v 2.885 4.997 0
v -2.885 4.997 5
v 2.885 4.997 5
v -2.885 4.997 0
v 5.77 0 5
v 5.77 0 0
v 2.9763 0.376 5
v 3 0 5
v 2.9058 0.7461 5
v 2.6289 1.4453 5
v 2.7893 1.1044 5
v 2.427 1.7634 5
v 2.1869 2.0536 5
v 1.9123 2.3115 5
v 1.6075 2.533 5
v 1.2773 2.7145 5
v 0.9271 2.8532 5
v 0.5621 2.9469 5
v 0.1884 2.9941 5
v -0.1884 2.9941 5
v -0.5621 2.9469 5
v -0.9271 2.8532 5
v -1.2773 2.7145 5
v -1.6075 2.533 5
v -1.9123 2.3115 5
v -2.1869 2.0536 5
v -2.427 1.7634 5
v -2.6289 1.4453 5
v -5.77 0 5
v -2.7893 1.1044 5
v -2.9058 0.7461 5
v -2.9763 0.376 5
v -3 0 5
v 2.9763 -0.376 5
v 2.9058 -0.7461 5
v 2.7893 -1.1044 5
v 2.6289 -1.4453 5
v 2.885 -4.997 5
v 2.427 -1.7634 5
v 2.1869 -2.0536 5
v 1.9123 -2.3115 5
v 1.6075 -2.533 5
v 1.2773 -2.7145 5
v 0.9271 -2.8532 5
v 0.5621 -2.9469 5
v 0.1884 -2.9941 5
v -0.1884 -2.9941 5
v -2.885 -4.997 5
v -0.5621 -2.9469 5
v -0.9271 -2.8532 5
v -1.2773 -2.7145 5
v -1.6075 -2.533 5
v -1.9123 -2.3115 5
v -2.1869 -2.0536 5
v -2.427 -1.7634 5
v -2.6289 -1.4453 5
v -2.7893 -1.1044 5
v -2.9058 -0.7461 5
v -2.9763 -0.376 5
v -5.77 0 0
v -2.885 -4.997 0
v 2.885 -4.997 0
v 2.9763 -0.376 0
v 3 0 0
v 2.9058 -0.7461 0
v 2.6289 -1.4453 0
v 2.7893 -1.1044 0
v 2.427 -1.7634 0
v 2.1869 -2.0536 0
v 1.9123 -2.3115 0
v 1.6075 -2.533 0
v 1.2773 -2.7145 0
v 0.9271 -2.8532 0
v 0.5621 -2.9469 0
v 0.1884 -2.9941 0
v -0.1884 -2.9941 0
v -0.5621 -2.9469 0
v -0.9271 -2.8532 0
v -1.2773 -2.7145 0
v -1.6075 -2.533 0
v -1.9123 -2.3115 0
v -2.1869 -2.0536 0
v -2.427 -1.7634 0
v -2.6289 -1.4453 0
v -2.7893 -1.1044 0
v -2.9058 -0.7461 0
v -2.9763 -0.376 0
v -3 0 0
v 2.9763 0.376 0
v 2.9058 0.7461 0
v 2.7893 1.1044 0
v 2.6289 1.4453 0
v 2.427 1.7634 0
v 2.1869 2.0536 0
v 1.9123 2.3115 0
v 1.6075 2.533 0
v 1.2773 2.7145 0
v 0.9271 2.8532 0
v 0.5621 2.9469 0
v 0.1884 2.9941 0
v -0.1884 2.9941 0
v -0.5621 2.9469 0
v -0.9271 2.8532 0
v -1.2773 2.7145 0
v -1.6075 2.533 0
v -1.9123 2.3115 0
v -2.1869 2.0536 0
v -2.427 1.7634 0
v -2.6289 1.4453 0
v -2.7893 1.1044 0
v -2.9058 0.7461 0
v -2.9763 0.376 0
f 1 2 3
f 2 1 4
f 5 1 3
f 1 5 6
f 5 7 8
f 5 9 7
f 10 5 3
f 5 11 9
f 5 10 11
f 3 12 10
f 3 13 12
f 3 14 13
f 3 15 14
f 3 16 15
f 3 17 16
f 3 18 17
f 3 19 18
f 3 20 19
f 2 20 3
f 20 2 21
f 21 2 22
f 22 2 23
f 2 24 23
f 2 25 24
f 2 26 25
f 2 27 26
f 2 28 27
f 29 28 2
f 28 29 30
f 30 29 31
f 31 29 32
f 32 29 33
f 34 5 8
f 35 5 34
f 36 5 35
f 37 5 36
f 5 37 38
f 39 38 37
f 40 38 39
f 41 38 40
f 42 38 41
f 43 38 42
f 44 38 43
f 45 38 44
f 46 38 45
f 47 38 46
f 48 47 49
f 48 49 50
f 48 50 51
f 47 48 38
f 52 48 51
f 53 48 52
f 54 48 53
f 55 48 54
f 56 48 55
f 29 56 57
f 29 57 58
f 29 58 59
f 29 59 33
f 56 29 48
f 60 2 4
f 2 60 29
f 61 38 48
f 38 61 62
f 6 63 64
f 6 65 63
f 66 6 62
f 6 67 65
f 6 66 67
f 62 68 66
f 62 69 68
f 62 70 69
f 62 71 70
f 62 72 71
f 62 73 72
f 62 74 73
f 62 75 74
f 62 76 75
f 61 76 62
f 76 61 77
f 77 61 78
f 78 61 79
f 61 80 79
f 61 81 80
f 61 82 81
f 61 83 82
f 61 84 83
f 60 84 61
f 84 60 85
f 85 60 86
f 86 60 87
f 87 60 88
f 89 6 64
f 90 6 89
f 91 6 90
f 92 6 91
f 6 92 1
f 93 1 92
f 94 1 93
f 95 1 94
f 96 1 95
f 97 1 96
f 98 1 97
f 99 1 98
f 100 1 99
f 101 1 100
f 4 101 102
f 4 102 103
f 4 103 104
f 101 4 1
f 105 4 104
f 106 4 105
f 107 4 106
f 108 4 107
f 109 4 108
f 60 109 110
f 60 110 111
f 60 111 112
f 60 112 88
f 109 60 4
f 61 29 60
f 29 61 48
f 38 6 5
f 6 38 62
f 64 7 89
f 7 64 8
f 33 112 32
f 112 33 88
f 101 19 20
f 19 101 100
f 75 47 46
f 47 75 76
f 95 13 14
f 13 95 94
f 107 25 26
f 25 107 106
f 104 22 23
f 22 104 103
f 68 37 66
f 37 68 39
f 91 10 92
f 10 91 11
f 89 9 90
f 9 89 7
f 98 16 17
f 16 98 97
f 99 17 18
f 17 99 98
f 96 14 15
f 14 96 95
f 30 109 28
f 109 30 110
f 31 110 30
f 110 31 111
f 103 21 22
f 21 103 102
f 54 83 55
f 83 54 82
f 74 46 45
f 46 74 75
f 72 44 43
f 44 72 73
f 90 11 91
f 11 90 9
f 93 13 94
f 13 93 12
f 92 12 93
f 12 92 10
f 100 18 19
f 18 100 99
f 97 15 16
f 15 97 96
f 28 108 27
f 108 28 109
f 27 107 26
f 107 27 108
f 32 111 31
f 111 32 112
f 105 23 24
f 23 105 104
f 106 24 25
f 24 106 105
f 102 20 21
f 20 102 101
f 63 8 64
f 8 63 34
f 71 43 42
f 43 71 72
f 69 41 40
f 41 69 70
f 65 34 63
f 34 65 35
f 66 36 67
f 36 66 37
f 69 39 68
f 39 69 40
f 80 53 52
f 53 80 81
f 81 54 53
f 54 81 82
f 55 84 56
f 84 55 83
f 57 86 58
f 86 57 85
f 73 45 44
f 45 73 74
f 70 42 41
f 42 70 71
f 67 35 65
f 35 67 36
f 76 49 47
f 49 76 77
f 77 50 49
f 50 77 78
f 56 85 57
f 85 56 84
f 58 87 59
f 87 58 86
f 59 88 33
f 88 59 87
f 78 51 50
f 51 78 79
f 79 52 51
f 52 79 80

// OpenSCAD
$fn = 50;


difference() {
	union() {
		translate(v = [0, 0, 0]) {
			rotate(a = [0, 0, 0]) {
				difference() {
					union() {
						linear_extrude(height = 5) {
							polygon(points = [[5.7700000000, 0.0000000000], [2.8850000000, 4.9969665798], [-2.8850000000, 4.9969665798], [-5.7700000000, 0.0000000000], [-2.8850000000, -4.9969665798], [2.8850000000, -4.9969665798]]);
						}
					}
					union();
				}
			}
		}
	}
	union() {
		cylinder(h = 100, r = 3.0000000000);
	}
}
